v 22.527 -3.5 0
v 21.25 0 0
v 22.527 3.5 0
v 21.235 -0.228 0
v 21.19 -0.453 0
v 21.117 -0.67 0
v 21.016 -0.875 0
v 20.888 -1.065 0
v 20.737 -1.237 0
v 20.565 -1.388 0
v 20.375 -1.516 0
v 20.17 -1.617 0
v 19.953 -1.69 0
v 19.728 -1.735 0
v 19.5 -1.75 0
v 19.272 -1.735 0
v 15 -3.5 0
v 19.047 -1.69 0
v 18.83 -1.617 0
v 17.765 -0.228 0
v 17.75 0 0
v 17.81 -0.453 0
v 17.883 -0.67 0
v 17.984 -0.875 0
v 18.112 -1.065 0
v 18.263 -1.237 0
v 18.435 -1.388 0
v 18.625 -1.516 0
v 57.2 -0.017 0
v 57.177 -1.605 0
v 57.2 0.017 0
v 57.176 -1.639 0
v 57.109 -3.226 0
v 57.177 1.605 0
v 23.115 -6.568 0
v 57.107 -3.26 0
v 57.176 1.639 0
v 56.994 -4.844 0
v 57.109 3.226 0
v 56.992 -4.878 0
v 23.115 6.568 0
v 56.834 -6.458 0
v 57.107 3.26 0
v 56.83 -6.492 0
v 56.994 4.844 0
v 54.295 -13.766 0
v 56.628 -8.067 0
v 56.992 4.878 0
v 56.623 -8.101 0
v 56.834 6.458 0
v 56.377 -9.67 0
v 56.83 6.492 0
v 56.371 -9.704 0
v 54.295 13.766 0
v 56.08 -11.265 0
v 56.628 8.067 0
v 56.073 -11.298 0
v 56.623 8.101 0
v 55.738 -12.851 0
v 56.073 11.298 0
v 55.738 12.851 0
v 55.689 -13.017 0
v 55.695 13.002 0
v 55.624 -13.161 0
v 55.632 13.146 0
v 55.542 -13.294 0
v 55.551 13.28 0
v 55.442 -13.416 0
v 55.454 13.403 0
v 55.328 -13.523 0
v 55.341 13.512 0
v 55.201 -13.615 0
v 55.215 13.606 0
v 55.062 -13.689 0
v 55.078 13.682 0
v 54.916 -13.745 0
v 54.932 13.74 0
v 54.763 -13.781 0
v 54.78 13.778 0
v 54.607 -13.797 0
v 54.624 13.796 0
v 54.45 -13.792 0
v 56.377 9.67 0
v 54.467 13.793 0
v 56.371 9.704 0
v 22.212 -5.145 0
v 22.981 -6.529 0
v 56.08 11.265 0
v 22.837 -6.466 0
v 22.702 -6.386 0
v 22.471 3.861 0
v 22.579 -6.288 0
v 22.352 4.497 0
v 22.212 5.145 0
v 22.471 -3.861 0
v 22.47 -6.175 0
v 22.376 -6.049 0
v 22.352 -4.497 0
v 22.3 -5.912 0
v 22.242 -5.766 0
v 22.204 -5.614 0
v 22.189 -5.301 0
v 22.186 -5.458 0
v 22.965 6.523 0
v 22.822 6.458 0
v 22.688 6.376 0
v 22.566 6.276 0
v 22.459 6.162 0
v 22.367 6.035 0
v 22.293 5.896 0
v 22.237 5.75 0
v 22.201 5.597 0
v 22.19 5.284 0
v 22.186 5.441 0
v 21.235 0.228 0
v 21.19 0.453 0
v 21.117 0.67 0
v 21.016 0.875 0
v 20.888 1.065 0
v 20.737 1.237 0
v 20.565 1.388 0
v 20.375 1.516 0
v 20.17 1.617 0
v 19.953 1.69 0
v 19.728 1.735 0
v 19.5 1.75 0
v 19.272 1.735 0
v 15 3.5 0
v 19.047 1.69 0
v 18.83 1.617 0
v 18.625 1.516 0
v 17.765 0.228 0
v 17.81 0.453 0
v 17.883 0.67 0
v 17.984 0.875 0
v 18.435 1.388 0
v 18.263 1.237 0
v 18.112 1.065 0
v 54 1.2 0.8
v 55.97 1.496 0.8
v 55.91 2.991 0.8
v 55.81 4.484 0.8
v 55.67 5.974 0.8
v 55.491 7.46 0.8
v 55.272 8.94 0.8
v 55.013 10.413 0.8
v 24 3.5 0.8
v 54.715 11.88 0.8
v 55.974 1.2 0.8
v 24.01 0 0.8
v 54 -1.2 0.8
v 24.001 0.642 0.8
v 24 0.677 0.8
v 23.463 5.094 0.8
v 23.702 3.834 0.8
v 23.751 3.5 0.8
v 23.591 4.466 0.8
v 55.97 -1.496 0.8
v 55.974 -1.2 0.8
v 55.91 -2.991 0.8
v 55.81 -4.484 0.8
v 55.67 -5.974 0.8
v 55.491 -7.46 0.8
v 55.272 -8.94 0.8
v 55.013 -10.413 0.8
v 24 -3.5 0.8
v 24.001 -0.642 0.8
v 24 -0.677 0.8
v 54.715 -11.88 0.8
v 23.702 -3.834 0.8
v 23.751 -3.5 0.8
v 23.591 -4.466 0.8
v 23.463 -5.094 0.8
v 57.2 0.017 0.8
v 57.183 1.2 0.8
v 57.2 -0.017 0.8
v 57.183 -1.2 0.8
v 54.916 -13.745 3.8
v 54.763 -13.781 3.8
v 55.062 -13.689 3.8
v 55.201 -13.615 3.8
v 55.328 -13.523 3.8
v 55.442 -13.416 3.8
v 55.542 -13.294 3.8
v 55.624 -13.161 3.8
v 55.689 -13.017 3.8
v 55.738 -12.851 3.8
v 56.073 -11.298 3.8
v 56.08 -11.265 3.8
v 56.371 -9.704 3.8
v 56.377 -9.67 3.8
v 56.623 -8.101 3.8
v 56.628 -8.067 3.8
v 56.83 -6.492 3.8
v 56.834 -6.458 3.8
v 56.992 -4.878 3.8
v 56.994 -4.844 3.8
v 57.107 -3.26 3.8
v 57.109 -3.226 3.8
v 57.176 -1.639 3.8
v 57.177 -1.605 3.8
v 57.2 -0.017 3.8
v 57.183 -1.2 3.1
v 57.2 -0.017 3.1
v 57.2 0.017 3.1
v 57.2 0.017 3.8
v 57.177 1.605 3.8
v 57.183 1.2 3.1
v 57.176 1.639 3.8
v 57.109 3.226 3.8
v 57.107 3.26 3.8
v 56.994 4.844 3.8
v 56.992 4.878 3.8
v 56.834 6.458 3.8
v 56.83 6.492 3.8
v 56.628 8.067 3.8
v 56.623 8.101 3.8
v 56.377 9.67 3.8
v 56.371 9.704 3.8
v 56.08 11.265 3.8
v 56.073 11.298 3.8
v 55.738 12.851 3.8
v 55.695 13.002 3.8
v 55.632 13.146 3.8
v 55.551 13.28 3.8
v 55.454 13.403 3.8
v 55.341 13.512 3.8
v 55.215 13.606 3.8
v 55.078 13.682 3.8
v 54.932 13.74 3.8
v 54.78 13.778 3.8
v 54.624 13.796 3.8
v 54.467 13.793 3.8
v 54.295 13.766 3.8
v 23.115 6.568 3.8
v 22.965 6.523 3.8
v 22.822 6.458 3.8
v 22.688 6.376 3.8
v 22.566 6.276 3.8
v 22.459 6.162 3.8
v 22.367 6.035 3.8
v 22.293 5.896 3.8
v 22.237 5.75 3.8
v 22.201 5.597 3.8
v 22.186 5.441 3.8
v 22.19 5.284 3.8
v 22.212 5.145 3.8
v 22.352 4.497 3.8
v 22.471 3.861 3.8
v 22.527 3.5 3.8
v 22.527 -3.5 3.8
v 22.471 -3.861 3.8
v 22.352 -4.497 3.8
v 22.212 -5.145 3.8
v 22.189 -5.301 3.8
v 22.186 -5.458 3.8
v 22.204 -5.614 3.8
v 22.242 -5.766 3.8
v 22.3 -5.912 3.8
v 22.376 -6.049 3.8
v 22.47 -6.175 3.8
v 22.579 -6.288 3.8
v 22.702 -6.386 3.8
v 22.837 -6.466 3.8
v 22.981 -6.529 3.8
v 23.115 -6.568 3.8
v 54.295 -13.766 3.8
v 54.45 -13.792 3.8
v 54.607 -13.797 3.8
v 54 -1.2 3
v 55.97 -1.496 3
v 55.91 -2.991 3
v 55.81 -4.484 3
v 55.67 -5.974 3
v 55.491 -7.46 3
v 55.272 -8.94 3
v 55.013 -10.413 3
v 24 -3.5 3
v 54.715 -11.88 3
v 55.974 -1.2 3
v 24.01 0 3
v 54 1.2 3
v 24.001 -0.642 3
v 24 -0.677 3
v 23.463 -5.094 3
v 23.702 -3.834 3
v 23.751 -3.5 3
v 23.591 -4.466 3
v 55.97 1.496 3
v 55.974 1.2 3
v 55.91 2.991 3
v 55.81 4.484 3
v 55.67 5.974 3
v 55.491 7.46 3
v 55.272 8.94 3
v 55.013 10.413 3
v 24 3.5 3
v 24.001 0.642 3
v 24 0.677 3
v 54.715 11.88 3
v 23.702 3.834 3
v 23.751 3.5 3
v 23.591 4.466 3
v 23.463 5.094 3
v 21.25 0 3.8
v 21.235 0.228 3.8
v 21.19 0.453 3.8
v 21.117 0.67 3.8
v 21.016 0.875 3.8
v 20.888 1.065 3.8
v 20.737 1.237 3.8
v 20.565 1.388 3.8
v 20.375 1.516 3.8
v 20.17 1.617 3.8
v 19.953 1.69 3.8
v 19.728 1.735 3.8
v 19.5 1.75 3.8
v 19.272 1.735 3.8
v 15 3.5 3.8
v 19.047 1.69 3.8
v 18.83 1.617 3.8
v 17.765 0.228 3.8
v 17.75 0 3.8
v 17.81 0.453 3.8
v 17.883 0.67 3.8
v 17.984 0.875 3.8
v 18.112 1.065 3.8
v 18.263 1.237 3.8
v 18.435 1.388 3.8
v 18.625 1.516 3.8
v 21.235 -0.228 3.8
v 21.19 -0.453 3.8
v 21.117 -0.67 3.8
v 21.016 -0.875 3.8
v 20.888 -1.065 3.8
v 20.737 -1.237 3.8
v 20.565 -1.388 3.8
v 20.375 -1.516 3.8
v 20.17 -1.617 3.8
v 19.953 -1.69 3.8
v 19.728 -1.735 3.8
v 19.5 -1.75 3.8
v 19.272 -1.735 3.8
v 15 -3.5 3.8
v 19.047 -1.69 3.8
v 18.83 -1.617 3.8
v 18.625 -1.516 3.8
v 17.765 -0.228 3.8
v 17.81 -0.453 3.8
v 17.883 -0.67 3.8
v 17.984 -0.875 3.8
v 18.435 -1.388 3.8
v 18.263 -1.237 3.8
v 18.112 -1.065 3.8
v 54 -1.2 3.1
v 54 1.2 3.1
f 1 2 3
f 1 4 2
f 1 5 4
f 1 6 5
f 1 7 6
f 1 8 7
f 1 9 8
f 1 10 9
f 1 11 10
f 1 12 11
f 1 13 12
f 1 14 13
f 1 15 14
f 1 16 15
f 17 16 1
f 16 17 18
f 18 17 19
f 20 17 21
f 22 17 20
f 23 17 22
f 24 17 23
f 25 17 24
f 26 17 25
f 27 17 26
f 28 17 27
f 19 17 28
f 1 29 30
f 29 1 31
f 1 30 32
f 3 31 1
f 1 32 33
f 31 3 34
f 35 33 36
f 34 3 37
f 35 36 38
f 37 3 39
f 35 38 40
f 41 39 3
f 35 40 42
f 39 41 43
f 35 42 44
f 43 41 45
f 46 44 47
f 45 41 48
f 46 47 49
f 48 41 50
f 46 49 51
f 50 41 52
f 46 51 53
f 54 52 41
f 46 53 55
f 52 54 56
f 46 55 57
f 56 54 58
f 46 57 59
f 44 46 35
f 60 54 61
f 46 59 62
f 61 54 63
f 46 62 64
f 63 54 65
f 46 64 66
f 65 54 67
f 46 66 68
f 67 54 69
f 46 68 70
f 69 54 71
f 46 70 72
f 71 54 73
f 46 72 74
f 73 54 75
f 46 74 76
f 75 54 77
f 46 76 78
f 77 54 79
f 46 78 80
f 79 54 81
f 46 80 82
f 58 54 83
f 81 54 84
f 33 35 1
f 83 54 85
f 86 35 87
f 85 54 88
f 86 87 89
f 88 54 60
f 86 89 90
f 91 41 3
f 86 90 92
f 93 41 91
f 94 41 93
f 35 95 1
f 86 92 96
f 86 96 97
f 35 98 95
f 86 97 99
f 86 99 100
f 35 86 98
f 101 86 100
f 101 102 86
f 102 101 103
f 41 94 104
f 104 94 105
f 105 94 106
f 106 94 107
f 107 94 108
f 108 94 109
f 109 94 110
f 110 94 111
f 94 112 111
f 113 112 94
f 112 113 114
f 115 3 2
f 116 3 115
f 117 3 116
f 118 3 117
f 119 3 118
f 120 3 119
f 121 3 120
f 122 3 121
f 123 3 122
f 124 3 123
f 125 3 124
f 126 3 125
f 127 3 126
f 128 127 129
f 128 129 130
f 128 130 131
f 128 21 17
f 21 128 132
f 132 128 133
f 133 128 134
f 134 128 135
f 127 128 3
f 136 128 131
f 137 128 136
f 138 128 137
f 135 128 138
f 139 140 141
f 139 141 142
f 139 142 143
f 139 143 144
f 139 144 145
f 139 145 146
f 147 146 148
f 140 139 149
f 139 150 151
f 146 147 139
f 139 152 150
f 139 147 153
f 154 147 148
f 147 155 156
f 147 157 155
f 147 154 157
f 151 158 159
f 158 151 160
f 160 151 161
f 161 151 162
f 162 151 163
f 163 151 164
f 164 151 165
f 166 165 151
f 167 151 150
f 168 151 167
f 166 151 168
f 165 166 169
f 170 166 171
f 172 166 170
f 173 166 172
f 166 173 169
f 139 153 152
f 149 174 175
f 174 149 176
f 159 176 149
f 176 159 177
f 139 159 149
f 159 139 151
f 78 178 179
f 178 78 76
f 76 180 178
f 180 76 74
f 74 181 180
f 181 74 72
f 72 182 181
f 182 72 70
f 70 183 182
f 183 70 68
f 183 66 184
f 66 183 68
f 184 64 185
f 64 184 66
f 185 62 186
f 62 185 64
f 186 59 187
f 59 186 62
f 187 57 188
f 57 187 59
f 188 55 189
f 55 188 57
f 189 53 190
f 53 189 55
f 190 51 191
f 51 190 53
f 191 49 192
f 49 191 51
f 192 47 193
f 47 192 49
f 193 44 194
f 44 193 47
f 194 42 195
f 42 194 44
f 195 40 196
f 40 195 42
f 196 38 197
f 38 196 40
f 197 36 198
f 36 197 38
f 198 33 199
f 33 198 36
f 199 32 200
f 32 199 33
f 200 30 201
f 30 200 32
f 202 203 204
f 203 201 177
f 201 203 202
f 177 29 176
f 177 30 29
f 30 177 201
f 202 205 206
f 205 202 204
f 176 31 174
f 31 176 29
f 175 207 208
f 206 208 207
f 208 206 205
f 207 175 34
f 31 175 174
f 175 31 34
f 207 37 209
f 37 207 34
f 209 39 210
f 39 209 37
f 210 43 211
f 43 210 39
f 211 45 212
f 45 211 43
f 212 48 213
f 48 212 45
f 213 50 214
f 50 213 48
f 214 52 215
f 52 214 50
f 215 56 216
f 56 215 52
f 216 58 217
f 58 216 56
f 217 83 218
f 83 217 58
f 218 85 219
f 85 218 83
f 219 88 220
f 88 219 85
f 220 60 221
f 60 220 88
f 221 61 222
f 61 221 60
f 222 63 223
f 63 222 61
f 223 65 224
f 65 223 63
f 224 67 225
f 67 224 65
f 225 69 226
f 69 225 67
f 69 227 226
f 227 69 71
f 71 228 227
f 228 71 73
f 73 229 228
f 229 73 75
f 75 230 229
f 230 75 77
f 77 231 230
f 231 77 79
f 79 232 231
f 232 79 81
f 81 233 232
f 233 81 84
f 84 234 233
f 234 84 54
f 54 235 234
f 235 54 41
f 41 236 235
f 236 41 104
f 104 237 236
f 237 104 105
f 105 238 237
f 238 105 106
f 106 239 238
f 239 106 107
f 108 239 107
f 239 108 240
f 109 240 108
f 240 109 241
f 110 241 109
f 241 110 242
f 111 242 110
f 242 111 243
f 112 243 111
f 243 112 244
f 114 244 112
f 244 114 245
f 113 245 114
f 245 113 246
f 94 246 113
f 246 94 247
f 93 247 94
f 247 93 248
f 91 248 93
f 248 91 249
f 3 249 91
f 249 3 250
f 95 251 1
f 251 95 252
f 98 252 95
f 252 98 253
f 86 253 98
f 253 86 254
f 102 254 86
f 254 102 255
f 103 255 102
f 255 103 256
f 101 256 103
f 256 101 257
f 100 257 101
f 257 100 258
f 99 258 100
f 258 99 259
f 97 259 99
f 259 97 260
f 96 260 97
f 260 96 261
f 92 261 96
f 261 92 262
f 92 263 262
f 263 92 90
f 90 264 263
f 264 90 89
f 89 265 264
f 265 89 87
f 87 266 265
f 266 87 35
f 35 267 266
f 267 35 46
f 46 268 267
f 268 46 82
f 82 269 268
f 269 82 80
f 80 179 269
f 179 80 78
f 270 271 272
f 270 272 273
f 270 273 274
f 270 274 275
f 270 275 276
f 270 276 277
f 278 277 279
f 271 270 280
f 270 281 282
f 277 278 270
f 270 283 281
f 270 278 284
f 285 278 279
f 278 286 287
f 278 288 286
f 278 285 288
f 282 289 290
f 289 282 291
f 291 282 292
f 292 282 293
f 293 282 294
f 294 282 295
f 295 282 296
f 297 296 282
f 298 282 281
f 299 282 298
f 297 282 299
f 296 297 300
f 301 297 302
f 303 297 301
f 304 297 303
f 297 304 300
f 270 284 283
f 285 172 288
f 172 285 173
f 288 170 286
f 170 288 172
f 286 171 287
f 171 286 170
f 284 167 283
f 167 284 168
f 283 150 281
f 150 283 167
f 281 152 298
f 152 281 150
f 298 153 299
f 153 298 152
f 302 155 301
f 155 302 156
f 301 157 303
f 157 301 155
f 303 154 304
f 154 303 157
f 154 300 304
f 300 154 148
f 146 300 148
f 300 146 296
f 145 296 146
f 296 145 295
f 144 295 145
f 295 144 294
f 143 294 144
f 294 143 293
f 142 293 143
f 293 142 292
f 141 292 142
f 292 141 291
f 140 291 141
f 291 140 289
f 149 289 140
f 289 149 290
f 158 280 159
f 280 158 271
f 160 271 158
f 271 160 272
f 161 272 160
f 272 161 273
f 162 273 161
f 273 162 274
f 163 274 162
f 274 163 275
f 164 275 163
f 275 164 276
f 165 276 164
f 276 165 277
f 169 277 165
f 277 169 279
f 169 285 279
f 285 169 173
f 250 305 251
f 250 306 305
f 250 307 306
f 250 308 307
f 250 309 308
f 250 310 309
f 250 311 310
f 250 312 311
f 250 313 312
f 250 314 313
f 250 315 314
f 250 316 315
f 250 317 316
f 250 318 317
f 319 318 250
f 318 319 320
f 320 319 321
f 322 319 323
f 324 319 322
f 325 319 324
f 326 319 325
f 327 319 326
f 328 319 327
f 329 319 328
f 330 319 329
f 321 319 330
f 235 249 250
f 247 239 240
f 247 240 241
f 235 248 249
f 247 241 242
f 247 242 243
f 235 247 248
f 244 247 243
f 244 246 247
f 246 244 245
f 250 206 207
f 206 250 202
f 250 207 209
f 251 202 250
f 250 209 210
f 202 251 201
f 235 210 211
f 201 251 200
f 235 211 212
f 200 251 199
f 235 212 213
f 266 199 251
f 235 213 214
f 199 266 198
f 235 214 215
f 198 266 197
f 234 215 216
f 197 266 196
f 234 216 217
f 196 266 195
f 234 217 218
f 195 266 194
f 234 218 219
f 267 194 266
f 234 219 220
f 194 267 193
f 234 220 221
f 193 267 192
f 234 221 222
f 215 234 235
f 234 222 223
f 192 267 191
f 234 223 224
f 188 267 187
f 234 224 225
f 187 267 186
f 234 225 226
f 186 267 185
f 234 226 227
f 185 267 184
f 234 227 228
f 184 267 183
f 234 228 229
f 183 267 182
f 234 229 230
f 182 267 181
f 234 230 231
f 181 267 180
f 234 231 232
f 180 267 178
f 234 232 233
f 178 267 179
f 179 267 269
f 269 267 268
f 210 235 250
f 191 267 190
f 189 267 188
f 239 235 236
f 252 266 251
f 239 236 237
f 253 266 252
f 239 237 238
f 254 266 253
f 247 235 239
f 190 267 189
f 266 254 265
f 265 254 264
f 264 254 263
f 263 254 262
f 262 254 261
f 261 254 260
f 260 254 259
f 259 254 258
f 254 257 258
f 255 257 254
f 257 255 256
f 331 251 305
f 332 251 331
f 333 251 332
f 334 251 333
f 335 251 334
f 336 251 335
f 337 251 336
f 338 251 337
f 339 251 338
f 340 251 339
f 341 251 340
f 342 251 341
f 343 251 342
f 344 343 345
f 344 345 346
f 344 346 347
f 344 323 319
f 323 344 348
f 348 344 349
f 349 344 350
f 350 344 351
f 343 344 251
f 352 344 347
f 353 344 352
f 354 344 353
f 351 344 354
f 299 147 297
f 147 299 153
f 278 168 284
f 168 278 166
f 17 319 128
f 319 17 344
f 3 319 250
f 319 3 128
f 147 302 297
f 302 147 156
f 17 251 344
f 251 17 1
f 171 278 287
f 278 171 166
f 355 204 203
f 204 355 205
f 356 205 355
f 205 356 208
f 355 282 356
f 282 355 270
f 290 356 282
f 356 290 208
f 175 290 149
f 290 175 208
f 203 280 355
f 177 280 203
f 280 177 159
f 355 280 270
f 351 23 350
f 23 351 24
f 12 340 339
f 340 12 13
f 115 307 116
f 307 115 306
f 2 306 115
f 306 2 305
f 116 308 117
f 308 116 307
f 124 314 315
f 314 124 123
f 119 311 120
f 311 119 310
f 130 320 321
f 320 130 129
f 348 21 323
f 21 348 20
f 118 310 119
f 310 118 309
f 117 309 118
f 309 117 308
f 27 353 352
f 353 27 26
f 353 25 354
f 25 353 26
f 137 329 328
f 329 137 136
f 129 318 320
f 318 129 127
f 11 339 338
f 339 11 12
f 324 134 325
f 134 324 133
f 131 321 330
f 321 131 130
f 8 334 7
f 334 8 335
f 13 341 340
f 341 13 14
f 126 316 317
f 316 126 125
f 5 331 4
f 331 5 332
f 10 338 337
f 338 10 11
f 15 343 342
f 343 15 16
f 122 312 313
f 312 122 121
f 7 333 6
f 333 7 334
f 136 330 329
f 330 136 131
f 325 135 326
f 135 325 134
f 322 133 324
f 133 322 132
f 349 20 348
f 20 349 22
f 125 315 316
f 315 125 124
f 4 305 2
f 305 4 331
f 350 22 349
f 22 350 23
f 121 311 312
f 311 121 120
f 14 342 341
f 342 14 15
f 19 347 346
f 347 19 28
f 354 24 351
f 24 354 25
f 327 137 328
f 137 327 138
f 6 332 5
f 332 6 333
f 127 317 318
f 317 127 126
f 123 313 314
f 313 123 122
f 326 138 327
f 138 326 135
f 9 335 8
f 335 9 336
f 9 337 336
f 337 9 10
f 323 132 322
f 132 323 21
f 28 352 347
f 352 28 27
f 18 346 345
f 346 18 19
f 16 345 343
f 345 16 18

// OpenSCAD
// file: parameters.scad
// =============================================================================
// Gen-S Dual-rotor ULTRA-THIN AFPM — WOUND-AWARE parameters (HARD GATE)
// Primary challenger vs Gen-P. Target m2m ≤ 7.0 while magnet↔wound ≥ 0.80.
// =============================================================================

// --- Wire / wind budget (26 AWG, ~1 lb spool ≈ 390 m bare-equiv) --------------
wire_awg            = 26;
wire_od             = 0.45;     // insulated OD mm
turns               = 130;      // +10 vs Gen-P; extra goes radial
fill                = 0.70;
layers_per_face     = 2;        // axial layers proud of EACH flange
wind_build_axial    = layers_per_face * wire_od * fill;   // 0.63 mm
wind_build_radial   = 3 * wire_od * fill;                 // 0.945 mm (extra turns)

// --- Pancake former (bare STL) — thinner web/flange than Gen-P ---------------
coil_id_r           = 24.0;     // larger window vs Gen-P 26–54
coil_od_r           = 56.0;
span_deg            = 26.0;     // 12 stations × 30° pitch
former_web          = 2.2;      // thinner than Gen-P 2.6
flange_t            = 0.8;      // thinner than Gen-P 0.9
wall                = 1.2;
slot_w              = 2.4;
mount_hole          = 3.5;
tab_len             = 7.0;

former_bare_h       = former_web + 2 * flange_t;            // 3.8 mm
coil_envelope_h     = former_bare_h + 2 * wind_build_axial; // 5.06 mm

// --- Running clearance (magnet face → WOUND face) EACH side ------------------
run_clear           = 0.80;     // PASS ≥ 0.80 preferred
gap_spacer_h        = run_clear + wind_build_axial;         // 1.43 mm
m2m                 = coil_envelope_h + 2 * run_clear;      // 6.66 mm (≤7.0 vs Gen-P 7.26)

// --- Mid stator (12 pancakes 3φ; winds proud both faces) ---------------------
coil_stations       = 12;
bay_r_in            = coil_id_r - 2.0 - wind_build_radial;
bay_r_out           = coil_od_r + 2.0 + wind_build_radial;
bay_span            = span_deg + 4.0;
bay_offset          = 2.0;
stator_thick        = former_bare_h;                        // winds proud ±Z
stator_od           = 152.0;
shaft_clear_stator  = 36.0;
coil_mount_r        = 28.0;

// --- Rotors (×2) — 8×Ø20 + 24×Ø5 Halbach each face ---------------------------
large_pocket_d      = 20.3;
small_pocket_d      = 5.3;
pocket_h            = 5.2;
large_n             = 8;
R_large             = 50.0;
R_small_inner       = 38.0;
R_small_mid         = 50.0;
R_small_outer       = 62.0;
carrier_od          = 148.0;
carrier_thick       = 7.5;
hub_h               = 10.0;
hub_od              = 30.0;
rotor_b_offset_deg  = 22.5;

// --- Modular MAX interface (Gen-E family) ------------------------------------
shaft_bore          = 8.35;
bearing_d           = 21.85;
bearing_h           = 7.2;
m3_clear            = 3.5;
bolt_r_inner        = 36.0;
bolt_n_inner        = 6;
flange_bolt_r       = 72.0;
flange_bolt_n       = 6;
brace_r             = 68.0;
brace_d             = 4.3;
brace_n             = 4;

spacer_pad_od       = 14.0;
spacer_pad_id       = m3_clear;
endbell_od          = 152.0;
endbell_thick       = 8.0;
endbell_shaft_clear = 10.0;

$fn = 64;
// main file
// Gen-S pancake former — print ×12
// WOUND: wind_build_axial=0.63, coil_envelope_h=5.06, m2m=6.66, magnet↔wound=0.80
include <parameters.scad>;
$fn = 48;

module sector_2d(r_in, r_out, ang) {
    polygon([
        for (a = [-ang/2 : ang/16 : ang/2]) [r_in*cos(a), r_in*sin(a)],
        for (a = [ang/2 : -ang/16 : -ang/2]) [r_out*cos(a), r_out*sin(a)]
    ]);
}
module flange() {
    linear_extrude(flange_t) offset(r=wall) sector_2d(coil_id_r, coil_od_r, span_deg);
}
difference() {
    union() {
        flange();
        translate([0, 0, flange_t])
            linear_extrude(former_web)
                difference() {
                    offset(r=wall) sector_2d(coil_id_r, coil_od_r, span_deg);
                    sector_2d(coil_id_r + 0.01, coil_od_r - 0.01, span_deg - 1.5);
                }
        translate([0, 0, flange_t + former_web]) flange();
        translate([coil_id_r - tab_len - 2, -3.5, 0])
            cube([tab_len + 2, 7, former_bare_h]);
    }
    translate([coil_od_r - 2, -slot_w/2, flange_t])
        cube([wall + 4, slot_w, former_web + 0.1]);
    translate([coil_id_r - tab_len/2 - 1, 0, -0.1])
        cylinder(d=mount_hole, h=former_bare_h + 1);
}
